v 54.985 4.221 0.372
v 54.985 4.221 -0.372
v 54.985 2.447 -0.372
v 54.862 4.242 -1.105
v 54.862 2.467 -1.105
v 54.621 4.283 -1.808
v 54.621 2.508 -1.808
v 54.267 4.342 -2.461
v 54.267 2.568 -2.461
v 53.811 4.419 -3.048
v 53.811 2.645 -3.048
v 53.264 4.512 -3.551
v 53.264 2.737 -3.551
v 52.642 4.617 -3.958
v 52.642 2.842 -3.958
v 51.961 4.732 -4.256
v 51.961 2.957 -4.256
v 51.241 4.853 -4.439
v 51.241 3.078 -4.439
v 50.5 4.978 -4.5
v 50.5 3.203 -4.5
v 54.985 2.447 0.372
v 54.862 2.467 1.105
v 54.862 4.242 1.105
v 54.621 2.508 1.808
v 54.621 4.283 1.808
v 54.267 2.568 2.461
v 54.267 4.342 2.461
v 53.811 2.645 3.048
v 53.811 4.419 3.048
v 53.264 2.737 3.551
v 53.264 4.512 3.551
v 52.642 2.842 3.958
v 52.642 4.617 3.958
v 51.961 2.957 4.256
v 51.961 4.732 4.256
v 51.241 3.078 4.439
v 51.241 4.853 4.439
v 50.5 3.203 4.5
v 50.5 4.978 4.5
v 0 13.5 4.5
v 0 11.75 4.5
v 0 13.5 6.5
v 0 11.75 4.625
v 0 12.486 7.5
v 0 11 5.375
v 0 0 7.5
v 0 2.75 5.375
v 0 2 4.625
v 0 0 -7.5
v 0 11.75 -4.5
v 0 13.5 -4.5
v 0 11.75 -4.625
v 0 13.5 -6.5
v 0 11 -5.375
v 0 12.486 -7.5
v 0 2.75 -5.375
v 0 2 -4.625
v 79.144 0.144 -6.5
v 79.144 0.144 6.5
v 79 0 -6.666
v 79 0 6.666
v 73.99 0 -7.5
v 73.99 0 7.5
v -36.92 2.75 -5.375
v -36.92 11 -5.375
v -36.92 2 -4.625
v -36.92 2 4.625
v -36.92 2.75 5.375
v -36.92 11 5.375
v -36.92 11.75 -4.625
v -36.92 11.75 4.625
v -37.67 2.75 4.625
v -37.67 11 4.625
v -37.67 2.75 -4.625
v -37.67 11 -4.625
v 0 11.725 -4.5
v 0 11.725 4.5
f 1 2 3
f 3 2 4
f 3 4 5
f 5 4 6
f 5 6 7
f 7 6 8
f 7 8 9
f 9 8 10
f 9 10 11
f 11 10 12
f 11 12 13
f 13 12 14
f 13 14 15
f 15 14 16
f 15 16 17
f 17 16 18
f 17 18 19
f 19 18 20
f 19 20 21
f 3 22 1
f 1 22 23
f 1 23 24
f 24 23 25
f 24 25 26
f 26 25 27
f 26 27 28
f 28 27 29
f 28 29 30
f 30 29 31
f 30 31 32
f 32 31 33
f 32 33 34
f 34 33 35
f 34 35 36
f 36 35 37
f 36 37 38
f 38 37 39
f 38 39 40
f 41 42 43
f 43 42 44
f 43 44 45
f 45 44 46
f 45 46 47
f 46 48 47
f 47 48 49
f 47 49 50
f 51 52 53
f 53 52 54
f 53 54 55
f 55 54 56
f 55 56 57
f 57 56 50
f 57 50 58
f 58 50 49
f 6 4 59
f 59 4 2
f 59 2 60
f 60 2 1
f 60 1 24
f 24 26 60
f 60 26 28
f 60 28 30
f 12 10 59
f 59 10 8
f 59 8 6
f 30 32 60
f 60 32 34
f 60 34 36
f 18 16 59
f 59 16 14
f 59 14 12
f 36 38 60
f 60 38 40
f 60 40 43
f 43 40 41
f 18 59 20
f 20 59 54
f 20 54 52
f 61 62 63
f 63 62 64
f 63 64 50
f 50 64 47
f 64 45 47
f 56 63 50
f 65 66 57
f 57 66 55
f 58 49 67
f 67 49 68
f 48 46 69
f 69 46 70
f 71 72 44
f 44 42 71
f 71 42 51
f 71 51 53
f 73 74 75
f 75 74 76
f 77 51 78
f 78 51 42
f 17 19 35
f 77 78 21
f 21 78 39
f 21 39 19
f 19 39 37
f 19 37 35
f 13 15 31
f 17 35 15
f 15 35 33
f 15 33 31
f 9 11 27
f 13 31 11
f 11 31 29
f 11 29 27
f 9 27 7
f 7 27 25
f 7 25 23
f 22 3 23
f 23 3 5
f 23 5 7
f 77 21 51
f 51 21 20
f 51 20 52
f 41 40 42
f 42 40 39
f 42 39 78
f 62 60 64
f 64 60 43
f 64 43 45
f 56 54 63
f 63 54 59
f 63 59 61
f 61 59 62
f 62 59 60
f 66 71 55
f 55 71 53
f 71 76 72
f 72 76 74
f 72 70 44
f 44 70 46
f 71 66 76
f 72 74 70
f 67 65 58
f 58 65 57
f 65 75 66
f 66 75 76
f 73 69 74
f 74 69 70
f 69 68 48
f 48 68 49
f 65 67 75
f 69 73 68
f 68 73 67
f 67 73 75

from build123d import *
from OCP.BRepFilletAPI import BRepFilletAPI_MakeChamfer

# Parameters (mm, degrees)
BOSS_EXTRUDE1_DEPTH = 7.5
SKETCH3_W           = 10.75
SKETCH3_H           = 9.75
BOSS_EXTRUDE2_DEPTH = 37.67
CUT_EXTRUDE9_START  = -3
CUT_EXTRUDE9_DEPTH  = 9
FILLET1_R           = 4.5
CHAMFER1_SIZE       = 1
CHAMFER1_SIZE2      = 0.867711944
CHAMFER3_SIZE       = 0.75


with BuildPart() as part:
    # Sketch2 → Boss-Extrude1 (new, symmetric)
    with BuildSketch(Plane.XY):
        Polygon((0, 0), (80, 0), (0, 13.5), align=None)
    extrude(amount=BOSS_EXTRUDE1_DEPTH, both=True)

    # Sketch3 → Boss-Extrude2 (add)
    with BuildSketch(Plane.ZY):
        with Locations((0, 6.875)):
            Rectangle(SKETCH3_W, SKETCH3_H)
    extrude(amount=BOSS_EXTRUDE2_DEPTH)

    # Sketch4 → Cut-Extrude9 (cut)
    with BuildSketch(Plane.XY.offset(7.5).offset(CUT_EXTRUDE9_START)):
        Polygon((55, 4.21875), (0, 13.5), (0, 11.725257914), (55, 2.444007914), align=None)
    extrude(amount=-CUT_EXTRUDE9_DEPTH, mode=Mode.SUBTRACT)

    # Fillet1
    fillet1_edges = [part.edges().sort_by_distance(p)[0] for p in [
        (55, 3.331378957, 4.5),
        (55, 3.331378957, -4.5),
    ]]
    fillet(fillet1_edges, radius=FILLET1_R - 0.0001)  # a hair under: the kernel refuses the full size

    # Chamfer1: one chamfer whose edges measure the first distance from different faces: ONE call of the kernel's chamfer builder (chamfer() names one face for all edges)
    chamfer1_edges_1 = [part.edges().sort_by_distance(p)[0] for p in [
        (40, 6.75, 7.5),
        (40, 6.75, -7.5),
    ]]
    chamfer1_edges_2 = [part.edges().sort_by_distance(p)[0] for p in [
        (80, 0, 0),
    ]]
    chamfer1_side_2 = [part.faces().sort_by_distance(p)[0] for p in [
        (40, 0, 0),
    ]]
    chamfer1 = BRepFilletAPI_MakeChamfer(part.part.solid().wrapped)
    for e in chamfer1_edges_1:
        chamfer1.Add(CHAMFER1_SIZE, e.wrapped)
    for e in chamfer1_edges_2:
        chamfer1.Add(CHAMFER1_SIZE, CHAMFER1_SIZE2, e.wrapped, chamfer1_side_2[0].wrapped)  # the first distance lies on this face
    add(Compound.cast(chamfer1.Shape()), mode=Mode.REPLACE)

    # Chamfer3
    chamfer3_edges = [part.edges().sort_by_distance(p)[0] for p in [
        (-18.835, 11.75, -5.375),
        (-18.835, 2, -5.375),
        (-18.835, 2, 5.375),
        (-18.835, 11.75, 5.375),
        (-37.67, 6.875, -5.375),
        (-37.67, 2, 0),
        (-37.67, 6.875, 5.375),
        (-37.67, 11.75, 0),
    ]]
    chamfer(chamfer3_edges, length=CHAMFER3_SIZE)


solid = part.part
